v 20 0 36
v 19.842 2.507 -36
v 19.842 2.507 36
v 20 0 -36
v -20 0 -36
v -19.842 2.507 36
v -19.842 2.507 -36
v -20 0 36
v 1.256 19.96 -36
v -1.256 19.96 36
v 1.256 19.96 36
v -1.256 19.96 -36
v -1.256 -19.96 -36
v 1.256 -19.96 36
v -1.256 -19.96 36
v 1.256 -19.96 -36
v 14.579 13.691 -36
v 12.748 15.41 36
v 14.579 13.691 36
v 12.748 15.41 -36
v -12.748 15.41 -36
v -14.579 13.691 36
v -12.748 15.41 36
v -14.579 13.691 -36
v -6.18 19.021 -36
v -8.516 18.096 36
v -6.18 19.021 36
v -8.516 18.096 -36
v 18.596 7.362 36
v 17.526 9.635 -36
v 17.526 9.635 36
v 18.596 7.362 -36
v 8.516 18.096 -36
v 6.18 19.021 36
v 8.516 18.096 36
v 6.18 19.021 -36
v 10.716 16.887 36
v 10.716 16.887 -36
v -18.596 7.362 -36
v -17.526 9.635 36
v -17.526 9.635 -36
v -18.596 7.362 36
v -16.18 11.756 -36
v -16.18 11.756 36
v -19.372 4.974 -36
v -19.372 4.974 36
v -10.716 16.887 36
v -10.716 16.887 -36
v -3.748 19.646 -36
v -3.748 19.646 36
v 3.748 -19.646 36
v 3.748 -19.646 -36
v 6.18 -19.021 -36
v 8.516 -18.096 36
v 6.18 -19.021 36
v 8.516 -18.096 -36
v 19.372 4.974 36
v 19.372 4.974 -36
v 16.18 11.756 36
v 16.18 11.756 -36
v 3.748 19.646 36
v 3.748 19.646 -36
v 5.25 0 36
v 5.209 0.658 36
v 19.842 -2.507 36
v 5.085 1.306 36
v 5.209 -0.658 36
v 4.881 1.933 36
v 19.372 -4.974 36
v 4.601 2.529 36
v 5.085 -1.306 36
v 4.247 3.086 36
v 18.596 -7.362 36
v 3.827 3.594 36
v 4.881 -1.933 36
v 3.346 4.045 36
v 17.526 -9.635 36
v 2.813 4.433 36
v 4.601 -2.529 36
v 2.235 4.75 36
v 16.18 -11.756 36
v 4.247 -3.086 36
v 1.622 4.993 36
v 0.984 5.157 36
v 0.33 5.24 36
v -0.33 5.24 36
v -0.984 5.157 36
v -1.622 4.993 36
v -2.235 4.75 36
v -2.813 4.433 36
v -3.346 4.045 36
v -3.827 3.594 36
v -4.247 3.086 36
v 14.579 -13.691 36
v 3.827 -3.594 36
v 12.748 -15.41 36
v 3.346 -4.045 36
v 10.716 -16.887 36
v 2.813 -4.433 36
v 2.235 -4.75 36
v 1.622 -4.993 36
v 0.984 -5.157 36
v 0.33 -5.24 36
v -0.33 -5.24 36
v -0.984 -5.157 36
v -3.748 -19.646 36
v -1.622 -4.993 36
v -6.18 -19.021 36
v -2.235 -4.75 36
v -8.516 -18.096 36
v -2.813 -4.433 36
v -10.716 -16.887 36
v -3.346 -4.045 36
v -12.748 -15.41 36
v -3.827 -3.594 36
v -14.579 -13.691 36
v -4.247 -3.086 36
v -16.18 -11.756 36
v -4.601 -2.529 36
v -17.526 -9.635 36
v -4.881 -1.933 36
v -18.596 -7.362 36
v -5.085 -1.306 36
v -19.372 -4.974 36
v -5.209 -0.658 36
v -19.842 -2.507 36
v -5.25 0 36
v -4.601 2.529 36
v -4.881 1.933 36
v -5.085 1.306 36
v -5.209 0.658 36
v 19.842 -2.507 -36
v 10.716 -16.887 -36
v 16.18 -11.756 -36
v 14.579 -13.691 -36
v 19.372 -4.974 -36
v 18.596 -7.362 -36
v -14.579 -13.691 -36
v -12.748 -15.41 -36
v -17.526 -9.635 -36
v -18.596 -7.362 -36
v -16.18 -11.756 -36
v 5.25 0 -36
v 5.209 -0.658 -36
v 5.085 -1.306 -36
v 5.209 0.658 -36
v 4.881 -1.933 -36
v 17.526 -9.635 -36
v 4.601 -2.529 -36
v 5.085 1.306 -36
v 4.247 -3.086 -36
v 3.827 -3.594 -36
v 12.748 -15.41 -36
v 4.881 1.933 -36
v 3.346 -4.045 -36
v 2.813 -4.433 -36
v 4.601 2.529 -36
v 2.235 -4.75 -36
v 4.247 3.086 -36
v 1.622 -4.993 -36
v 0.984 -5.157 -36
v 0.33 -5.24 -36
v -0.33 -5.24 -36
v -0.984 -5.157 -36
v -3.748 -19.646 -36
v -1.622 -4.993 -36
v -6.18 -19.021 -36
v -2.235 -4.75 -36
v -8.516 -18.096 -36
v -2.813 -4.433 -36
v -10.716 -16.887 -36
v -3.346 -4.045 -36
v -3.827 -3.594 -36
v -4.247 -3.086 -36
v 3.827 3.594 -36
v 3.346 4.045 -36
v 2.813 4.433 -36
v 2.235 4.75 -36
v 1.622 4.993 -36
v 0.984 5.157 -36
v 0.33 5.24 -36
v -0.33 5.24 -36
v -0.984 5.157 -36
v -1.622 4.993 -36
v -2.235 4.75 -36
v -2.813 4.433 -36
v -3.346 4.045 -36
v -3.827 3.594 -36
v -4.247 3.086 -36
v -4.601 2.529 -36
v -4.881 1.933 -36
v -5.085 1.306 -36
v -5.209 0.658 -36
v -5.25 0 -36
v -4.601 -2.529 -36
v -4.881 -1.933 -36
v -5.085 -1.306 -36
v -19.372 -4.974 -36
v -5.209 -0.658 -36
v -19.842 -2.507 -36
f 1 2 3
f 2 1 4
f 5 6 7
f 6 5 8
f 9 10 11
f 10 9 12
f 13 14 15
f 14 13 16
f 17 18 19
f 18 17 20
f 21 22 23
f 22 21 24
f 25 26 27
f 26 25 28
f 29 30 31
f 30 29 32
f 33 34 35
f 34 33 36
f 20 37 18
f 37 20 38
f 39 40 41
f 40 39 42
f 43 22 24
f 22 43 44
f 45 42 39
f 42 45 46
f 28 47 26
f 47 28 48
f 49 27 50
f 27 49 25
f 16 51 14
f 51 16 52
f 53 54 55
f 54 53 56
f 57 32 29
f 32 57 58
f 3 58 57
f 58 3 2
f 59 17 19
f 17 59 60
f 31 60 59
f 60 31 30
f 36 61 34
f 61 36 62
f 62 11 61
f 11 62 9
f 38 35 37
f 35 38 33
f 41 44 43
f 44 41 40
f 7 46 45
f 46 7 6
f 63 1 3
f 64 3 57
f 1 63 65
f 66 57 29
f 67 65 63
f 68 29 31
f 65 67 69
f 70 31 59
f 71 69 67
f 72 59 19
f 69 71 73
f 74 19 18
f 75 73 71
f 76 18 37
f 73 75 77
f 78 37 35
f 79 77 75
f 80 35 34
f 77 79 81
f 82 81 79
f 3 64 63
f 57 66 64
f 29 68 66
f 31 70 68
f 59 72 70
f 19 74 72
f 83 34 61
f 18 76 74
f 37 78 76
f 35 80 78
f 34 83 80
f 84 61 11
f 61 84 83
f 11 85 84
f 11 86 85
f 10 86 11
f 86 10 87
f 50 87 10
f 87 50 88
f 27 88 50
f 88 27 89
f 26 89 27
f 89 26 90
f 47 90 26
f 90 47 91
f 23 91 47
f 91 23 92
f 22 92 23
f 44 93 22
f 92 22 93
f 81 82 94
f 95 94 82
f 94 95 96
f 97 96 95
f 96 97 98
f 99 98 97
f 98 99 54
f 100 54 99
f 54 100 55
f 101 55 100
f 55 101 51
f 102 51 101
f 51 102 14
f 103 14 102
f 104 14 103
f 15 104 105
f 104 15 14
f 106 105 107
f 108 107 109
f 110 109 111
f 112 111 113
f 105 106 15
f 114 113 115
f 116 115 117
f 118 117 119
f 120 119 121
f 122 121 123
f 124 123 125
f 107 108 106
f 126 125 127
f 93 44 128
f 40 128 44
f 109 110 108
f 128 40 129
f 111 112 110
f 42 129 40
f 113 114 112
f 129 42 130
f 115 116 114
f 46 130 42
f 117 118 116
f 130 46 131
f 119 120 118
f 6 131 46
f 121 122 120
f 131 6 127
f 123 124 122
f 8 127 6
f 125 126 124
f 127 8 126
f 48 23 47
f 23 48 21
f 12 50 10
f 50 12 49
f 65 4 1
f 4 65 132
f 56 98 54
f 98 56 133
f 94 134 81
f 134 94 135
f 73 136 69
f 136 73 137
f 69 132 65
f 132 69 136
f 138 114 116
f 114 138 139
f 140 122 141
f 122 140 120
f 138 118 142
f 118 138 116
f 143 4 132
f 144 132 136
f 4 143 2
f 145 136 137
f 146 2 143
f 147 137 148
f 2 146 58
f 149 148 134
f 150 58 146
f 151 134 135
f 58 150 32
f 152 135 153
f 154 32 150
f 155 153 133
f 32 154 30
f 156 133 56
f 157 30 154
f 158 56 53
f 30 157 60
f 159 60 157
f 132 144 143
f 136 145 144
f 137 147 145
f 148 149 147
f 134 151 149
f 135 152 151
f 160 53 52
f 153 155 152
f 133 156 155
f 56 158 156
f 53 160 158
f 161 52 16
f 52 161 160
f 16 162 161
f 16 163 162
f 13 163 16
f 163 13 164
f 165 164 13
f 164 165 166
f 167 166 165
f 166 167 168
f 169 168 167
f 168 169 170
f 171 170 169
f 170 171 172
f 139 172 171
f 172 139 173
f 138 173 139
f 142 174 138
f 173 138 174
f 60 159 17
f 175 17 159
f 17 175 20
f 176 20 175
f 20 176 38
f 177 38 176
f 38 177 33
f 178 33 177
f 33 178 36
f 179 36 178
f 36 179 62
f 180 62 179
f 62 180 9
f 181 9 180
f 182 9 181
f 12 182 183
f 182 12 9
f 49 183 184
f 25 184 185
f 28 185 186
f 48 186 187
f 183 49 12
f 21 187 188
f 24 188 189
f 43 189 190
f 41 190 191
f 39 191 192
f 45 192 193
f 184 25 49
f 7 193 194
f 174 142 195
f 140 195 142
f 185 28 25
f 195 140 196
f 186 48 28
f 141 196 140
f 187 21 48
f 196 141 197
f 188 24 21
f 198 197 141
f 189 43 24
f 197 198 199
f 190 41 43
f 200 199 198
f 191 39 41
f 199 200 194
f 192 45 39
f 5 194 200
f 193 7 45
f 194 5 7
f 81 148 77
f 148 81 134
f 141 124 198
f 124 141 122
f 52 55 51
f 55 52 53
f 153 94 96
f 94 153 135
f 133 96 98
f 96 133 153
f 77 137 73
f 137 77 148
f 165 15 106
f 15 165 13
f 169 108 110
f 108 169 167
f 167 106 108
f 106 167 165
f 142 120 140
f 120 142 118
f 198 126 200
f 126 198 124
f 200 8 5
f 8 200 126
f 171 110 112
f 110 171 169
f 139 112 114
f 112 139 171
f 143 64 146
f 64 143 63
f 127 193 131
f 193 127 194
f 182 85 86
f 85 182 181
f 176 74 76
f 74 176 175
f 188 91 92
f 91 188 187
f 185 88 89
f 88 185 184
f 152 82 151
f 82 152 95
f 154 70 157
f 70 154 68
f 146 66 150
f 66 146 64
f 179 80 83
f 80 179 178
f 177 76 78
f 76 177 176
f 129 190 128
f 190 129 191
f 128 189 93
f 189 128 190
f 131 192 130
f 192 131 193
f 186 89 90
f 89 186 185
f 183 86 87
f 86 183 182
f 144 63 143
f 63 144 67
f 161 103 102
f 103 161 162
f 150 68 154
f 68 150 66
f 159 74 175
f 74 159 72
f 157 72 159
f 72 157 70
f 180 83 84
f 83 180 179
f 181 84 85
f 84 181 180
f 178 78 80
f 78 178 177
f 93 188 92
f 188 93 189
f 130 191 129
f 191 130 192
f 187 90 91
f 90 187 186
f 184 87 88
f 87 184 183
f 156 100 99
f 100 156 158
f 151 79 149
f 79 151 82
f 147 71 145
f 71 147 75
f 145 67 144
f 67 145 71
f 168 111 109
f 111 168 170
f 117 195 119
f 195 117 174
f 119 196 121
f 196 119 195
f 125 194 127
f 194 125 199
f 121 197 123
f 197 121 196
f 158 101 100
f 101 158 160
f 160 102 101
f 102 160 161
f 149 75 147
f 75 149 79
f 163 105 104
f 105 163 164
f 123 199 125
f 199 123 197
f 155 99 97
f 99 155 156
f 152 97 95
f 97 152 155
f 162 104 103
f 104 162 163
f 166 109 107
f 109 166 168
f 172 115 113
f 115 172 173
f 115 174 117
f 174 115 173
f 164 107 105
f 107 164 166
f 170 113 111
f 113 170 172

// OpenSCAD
$fn = 50;


difference() {
	union() {
		translate(v = [0, 0, -36.0000000000]) {
			cylinder(h = 72, r = 20.0000000000);
		}
	}
	union() {
		translate(v = [0, 0, -100.0000000000]) {
			cylinder(h = 200, r = 5.2500000000);
		}
	}
}
